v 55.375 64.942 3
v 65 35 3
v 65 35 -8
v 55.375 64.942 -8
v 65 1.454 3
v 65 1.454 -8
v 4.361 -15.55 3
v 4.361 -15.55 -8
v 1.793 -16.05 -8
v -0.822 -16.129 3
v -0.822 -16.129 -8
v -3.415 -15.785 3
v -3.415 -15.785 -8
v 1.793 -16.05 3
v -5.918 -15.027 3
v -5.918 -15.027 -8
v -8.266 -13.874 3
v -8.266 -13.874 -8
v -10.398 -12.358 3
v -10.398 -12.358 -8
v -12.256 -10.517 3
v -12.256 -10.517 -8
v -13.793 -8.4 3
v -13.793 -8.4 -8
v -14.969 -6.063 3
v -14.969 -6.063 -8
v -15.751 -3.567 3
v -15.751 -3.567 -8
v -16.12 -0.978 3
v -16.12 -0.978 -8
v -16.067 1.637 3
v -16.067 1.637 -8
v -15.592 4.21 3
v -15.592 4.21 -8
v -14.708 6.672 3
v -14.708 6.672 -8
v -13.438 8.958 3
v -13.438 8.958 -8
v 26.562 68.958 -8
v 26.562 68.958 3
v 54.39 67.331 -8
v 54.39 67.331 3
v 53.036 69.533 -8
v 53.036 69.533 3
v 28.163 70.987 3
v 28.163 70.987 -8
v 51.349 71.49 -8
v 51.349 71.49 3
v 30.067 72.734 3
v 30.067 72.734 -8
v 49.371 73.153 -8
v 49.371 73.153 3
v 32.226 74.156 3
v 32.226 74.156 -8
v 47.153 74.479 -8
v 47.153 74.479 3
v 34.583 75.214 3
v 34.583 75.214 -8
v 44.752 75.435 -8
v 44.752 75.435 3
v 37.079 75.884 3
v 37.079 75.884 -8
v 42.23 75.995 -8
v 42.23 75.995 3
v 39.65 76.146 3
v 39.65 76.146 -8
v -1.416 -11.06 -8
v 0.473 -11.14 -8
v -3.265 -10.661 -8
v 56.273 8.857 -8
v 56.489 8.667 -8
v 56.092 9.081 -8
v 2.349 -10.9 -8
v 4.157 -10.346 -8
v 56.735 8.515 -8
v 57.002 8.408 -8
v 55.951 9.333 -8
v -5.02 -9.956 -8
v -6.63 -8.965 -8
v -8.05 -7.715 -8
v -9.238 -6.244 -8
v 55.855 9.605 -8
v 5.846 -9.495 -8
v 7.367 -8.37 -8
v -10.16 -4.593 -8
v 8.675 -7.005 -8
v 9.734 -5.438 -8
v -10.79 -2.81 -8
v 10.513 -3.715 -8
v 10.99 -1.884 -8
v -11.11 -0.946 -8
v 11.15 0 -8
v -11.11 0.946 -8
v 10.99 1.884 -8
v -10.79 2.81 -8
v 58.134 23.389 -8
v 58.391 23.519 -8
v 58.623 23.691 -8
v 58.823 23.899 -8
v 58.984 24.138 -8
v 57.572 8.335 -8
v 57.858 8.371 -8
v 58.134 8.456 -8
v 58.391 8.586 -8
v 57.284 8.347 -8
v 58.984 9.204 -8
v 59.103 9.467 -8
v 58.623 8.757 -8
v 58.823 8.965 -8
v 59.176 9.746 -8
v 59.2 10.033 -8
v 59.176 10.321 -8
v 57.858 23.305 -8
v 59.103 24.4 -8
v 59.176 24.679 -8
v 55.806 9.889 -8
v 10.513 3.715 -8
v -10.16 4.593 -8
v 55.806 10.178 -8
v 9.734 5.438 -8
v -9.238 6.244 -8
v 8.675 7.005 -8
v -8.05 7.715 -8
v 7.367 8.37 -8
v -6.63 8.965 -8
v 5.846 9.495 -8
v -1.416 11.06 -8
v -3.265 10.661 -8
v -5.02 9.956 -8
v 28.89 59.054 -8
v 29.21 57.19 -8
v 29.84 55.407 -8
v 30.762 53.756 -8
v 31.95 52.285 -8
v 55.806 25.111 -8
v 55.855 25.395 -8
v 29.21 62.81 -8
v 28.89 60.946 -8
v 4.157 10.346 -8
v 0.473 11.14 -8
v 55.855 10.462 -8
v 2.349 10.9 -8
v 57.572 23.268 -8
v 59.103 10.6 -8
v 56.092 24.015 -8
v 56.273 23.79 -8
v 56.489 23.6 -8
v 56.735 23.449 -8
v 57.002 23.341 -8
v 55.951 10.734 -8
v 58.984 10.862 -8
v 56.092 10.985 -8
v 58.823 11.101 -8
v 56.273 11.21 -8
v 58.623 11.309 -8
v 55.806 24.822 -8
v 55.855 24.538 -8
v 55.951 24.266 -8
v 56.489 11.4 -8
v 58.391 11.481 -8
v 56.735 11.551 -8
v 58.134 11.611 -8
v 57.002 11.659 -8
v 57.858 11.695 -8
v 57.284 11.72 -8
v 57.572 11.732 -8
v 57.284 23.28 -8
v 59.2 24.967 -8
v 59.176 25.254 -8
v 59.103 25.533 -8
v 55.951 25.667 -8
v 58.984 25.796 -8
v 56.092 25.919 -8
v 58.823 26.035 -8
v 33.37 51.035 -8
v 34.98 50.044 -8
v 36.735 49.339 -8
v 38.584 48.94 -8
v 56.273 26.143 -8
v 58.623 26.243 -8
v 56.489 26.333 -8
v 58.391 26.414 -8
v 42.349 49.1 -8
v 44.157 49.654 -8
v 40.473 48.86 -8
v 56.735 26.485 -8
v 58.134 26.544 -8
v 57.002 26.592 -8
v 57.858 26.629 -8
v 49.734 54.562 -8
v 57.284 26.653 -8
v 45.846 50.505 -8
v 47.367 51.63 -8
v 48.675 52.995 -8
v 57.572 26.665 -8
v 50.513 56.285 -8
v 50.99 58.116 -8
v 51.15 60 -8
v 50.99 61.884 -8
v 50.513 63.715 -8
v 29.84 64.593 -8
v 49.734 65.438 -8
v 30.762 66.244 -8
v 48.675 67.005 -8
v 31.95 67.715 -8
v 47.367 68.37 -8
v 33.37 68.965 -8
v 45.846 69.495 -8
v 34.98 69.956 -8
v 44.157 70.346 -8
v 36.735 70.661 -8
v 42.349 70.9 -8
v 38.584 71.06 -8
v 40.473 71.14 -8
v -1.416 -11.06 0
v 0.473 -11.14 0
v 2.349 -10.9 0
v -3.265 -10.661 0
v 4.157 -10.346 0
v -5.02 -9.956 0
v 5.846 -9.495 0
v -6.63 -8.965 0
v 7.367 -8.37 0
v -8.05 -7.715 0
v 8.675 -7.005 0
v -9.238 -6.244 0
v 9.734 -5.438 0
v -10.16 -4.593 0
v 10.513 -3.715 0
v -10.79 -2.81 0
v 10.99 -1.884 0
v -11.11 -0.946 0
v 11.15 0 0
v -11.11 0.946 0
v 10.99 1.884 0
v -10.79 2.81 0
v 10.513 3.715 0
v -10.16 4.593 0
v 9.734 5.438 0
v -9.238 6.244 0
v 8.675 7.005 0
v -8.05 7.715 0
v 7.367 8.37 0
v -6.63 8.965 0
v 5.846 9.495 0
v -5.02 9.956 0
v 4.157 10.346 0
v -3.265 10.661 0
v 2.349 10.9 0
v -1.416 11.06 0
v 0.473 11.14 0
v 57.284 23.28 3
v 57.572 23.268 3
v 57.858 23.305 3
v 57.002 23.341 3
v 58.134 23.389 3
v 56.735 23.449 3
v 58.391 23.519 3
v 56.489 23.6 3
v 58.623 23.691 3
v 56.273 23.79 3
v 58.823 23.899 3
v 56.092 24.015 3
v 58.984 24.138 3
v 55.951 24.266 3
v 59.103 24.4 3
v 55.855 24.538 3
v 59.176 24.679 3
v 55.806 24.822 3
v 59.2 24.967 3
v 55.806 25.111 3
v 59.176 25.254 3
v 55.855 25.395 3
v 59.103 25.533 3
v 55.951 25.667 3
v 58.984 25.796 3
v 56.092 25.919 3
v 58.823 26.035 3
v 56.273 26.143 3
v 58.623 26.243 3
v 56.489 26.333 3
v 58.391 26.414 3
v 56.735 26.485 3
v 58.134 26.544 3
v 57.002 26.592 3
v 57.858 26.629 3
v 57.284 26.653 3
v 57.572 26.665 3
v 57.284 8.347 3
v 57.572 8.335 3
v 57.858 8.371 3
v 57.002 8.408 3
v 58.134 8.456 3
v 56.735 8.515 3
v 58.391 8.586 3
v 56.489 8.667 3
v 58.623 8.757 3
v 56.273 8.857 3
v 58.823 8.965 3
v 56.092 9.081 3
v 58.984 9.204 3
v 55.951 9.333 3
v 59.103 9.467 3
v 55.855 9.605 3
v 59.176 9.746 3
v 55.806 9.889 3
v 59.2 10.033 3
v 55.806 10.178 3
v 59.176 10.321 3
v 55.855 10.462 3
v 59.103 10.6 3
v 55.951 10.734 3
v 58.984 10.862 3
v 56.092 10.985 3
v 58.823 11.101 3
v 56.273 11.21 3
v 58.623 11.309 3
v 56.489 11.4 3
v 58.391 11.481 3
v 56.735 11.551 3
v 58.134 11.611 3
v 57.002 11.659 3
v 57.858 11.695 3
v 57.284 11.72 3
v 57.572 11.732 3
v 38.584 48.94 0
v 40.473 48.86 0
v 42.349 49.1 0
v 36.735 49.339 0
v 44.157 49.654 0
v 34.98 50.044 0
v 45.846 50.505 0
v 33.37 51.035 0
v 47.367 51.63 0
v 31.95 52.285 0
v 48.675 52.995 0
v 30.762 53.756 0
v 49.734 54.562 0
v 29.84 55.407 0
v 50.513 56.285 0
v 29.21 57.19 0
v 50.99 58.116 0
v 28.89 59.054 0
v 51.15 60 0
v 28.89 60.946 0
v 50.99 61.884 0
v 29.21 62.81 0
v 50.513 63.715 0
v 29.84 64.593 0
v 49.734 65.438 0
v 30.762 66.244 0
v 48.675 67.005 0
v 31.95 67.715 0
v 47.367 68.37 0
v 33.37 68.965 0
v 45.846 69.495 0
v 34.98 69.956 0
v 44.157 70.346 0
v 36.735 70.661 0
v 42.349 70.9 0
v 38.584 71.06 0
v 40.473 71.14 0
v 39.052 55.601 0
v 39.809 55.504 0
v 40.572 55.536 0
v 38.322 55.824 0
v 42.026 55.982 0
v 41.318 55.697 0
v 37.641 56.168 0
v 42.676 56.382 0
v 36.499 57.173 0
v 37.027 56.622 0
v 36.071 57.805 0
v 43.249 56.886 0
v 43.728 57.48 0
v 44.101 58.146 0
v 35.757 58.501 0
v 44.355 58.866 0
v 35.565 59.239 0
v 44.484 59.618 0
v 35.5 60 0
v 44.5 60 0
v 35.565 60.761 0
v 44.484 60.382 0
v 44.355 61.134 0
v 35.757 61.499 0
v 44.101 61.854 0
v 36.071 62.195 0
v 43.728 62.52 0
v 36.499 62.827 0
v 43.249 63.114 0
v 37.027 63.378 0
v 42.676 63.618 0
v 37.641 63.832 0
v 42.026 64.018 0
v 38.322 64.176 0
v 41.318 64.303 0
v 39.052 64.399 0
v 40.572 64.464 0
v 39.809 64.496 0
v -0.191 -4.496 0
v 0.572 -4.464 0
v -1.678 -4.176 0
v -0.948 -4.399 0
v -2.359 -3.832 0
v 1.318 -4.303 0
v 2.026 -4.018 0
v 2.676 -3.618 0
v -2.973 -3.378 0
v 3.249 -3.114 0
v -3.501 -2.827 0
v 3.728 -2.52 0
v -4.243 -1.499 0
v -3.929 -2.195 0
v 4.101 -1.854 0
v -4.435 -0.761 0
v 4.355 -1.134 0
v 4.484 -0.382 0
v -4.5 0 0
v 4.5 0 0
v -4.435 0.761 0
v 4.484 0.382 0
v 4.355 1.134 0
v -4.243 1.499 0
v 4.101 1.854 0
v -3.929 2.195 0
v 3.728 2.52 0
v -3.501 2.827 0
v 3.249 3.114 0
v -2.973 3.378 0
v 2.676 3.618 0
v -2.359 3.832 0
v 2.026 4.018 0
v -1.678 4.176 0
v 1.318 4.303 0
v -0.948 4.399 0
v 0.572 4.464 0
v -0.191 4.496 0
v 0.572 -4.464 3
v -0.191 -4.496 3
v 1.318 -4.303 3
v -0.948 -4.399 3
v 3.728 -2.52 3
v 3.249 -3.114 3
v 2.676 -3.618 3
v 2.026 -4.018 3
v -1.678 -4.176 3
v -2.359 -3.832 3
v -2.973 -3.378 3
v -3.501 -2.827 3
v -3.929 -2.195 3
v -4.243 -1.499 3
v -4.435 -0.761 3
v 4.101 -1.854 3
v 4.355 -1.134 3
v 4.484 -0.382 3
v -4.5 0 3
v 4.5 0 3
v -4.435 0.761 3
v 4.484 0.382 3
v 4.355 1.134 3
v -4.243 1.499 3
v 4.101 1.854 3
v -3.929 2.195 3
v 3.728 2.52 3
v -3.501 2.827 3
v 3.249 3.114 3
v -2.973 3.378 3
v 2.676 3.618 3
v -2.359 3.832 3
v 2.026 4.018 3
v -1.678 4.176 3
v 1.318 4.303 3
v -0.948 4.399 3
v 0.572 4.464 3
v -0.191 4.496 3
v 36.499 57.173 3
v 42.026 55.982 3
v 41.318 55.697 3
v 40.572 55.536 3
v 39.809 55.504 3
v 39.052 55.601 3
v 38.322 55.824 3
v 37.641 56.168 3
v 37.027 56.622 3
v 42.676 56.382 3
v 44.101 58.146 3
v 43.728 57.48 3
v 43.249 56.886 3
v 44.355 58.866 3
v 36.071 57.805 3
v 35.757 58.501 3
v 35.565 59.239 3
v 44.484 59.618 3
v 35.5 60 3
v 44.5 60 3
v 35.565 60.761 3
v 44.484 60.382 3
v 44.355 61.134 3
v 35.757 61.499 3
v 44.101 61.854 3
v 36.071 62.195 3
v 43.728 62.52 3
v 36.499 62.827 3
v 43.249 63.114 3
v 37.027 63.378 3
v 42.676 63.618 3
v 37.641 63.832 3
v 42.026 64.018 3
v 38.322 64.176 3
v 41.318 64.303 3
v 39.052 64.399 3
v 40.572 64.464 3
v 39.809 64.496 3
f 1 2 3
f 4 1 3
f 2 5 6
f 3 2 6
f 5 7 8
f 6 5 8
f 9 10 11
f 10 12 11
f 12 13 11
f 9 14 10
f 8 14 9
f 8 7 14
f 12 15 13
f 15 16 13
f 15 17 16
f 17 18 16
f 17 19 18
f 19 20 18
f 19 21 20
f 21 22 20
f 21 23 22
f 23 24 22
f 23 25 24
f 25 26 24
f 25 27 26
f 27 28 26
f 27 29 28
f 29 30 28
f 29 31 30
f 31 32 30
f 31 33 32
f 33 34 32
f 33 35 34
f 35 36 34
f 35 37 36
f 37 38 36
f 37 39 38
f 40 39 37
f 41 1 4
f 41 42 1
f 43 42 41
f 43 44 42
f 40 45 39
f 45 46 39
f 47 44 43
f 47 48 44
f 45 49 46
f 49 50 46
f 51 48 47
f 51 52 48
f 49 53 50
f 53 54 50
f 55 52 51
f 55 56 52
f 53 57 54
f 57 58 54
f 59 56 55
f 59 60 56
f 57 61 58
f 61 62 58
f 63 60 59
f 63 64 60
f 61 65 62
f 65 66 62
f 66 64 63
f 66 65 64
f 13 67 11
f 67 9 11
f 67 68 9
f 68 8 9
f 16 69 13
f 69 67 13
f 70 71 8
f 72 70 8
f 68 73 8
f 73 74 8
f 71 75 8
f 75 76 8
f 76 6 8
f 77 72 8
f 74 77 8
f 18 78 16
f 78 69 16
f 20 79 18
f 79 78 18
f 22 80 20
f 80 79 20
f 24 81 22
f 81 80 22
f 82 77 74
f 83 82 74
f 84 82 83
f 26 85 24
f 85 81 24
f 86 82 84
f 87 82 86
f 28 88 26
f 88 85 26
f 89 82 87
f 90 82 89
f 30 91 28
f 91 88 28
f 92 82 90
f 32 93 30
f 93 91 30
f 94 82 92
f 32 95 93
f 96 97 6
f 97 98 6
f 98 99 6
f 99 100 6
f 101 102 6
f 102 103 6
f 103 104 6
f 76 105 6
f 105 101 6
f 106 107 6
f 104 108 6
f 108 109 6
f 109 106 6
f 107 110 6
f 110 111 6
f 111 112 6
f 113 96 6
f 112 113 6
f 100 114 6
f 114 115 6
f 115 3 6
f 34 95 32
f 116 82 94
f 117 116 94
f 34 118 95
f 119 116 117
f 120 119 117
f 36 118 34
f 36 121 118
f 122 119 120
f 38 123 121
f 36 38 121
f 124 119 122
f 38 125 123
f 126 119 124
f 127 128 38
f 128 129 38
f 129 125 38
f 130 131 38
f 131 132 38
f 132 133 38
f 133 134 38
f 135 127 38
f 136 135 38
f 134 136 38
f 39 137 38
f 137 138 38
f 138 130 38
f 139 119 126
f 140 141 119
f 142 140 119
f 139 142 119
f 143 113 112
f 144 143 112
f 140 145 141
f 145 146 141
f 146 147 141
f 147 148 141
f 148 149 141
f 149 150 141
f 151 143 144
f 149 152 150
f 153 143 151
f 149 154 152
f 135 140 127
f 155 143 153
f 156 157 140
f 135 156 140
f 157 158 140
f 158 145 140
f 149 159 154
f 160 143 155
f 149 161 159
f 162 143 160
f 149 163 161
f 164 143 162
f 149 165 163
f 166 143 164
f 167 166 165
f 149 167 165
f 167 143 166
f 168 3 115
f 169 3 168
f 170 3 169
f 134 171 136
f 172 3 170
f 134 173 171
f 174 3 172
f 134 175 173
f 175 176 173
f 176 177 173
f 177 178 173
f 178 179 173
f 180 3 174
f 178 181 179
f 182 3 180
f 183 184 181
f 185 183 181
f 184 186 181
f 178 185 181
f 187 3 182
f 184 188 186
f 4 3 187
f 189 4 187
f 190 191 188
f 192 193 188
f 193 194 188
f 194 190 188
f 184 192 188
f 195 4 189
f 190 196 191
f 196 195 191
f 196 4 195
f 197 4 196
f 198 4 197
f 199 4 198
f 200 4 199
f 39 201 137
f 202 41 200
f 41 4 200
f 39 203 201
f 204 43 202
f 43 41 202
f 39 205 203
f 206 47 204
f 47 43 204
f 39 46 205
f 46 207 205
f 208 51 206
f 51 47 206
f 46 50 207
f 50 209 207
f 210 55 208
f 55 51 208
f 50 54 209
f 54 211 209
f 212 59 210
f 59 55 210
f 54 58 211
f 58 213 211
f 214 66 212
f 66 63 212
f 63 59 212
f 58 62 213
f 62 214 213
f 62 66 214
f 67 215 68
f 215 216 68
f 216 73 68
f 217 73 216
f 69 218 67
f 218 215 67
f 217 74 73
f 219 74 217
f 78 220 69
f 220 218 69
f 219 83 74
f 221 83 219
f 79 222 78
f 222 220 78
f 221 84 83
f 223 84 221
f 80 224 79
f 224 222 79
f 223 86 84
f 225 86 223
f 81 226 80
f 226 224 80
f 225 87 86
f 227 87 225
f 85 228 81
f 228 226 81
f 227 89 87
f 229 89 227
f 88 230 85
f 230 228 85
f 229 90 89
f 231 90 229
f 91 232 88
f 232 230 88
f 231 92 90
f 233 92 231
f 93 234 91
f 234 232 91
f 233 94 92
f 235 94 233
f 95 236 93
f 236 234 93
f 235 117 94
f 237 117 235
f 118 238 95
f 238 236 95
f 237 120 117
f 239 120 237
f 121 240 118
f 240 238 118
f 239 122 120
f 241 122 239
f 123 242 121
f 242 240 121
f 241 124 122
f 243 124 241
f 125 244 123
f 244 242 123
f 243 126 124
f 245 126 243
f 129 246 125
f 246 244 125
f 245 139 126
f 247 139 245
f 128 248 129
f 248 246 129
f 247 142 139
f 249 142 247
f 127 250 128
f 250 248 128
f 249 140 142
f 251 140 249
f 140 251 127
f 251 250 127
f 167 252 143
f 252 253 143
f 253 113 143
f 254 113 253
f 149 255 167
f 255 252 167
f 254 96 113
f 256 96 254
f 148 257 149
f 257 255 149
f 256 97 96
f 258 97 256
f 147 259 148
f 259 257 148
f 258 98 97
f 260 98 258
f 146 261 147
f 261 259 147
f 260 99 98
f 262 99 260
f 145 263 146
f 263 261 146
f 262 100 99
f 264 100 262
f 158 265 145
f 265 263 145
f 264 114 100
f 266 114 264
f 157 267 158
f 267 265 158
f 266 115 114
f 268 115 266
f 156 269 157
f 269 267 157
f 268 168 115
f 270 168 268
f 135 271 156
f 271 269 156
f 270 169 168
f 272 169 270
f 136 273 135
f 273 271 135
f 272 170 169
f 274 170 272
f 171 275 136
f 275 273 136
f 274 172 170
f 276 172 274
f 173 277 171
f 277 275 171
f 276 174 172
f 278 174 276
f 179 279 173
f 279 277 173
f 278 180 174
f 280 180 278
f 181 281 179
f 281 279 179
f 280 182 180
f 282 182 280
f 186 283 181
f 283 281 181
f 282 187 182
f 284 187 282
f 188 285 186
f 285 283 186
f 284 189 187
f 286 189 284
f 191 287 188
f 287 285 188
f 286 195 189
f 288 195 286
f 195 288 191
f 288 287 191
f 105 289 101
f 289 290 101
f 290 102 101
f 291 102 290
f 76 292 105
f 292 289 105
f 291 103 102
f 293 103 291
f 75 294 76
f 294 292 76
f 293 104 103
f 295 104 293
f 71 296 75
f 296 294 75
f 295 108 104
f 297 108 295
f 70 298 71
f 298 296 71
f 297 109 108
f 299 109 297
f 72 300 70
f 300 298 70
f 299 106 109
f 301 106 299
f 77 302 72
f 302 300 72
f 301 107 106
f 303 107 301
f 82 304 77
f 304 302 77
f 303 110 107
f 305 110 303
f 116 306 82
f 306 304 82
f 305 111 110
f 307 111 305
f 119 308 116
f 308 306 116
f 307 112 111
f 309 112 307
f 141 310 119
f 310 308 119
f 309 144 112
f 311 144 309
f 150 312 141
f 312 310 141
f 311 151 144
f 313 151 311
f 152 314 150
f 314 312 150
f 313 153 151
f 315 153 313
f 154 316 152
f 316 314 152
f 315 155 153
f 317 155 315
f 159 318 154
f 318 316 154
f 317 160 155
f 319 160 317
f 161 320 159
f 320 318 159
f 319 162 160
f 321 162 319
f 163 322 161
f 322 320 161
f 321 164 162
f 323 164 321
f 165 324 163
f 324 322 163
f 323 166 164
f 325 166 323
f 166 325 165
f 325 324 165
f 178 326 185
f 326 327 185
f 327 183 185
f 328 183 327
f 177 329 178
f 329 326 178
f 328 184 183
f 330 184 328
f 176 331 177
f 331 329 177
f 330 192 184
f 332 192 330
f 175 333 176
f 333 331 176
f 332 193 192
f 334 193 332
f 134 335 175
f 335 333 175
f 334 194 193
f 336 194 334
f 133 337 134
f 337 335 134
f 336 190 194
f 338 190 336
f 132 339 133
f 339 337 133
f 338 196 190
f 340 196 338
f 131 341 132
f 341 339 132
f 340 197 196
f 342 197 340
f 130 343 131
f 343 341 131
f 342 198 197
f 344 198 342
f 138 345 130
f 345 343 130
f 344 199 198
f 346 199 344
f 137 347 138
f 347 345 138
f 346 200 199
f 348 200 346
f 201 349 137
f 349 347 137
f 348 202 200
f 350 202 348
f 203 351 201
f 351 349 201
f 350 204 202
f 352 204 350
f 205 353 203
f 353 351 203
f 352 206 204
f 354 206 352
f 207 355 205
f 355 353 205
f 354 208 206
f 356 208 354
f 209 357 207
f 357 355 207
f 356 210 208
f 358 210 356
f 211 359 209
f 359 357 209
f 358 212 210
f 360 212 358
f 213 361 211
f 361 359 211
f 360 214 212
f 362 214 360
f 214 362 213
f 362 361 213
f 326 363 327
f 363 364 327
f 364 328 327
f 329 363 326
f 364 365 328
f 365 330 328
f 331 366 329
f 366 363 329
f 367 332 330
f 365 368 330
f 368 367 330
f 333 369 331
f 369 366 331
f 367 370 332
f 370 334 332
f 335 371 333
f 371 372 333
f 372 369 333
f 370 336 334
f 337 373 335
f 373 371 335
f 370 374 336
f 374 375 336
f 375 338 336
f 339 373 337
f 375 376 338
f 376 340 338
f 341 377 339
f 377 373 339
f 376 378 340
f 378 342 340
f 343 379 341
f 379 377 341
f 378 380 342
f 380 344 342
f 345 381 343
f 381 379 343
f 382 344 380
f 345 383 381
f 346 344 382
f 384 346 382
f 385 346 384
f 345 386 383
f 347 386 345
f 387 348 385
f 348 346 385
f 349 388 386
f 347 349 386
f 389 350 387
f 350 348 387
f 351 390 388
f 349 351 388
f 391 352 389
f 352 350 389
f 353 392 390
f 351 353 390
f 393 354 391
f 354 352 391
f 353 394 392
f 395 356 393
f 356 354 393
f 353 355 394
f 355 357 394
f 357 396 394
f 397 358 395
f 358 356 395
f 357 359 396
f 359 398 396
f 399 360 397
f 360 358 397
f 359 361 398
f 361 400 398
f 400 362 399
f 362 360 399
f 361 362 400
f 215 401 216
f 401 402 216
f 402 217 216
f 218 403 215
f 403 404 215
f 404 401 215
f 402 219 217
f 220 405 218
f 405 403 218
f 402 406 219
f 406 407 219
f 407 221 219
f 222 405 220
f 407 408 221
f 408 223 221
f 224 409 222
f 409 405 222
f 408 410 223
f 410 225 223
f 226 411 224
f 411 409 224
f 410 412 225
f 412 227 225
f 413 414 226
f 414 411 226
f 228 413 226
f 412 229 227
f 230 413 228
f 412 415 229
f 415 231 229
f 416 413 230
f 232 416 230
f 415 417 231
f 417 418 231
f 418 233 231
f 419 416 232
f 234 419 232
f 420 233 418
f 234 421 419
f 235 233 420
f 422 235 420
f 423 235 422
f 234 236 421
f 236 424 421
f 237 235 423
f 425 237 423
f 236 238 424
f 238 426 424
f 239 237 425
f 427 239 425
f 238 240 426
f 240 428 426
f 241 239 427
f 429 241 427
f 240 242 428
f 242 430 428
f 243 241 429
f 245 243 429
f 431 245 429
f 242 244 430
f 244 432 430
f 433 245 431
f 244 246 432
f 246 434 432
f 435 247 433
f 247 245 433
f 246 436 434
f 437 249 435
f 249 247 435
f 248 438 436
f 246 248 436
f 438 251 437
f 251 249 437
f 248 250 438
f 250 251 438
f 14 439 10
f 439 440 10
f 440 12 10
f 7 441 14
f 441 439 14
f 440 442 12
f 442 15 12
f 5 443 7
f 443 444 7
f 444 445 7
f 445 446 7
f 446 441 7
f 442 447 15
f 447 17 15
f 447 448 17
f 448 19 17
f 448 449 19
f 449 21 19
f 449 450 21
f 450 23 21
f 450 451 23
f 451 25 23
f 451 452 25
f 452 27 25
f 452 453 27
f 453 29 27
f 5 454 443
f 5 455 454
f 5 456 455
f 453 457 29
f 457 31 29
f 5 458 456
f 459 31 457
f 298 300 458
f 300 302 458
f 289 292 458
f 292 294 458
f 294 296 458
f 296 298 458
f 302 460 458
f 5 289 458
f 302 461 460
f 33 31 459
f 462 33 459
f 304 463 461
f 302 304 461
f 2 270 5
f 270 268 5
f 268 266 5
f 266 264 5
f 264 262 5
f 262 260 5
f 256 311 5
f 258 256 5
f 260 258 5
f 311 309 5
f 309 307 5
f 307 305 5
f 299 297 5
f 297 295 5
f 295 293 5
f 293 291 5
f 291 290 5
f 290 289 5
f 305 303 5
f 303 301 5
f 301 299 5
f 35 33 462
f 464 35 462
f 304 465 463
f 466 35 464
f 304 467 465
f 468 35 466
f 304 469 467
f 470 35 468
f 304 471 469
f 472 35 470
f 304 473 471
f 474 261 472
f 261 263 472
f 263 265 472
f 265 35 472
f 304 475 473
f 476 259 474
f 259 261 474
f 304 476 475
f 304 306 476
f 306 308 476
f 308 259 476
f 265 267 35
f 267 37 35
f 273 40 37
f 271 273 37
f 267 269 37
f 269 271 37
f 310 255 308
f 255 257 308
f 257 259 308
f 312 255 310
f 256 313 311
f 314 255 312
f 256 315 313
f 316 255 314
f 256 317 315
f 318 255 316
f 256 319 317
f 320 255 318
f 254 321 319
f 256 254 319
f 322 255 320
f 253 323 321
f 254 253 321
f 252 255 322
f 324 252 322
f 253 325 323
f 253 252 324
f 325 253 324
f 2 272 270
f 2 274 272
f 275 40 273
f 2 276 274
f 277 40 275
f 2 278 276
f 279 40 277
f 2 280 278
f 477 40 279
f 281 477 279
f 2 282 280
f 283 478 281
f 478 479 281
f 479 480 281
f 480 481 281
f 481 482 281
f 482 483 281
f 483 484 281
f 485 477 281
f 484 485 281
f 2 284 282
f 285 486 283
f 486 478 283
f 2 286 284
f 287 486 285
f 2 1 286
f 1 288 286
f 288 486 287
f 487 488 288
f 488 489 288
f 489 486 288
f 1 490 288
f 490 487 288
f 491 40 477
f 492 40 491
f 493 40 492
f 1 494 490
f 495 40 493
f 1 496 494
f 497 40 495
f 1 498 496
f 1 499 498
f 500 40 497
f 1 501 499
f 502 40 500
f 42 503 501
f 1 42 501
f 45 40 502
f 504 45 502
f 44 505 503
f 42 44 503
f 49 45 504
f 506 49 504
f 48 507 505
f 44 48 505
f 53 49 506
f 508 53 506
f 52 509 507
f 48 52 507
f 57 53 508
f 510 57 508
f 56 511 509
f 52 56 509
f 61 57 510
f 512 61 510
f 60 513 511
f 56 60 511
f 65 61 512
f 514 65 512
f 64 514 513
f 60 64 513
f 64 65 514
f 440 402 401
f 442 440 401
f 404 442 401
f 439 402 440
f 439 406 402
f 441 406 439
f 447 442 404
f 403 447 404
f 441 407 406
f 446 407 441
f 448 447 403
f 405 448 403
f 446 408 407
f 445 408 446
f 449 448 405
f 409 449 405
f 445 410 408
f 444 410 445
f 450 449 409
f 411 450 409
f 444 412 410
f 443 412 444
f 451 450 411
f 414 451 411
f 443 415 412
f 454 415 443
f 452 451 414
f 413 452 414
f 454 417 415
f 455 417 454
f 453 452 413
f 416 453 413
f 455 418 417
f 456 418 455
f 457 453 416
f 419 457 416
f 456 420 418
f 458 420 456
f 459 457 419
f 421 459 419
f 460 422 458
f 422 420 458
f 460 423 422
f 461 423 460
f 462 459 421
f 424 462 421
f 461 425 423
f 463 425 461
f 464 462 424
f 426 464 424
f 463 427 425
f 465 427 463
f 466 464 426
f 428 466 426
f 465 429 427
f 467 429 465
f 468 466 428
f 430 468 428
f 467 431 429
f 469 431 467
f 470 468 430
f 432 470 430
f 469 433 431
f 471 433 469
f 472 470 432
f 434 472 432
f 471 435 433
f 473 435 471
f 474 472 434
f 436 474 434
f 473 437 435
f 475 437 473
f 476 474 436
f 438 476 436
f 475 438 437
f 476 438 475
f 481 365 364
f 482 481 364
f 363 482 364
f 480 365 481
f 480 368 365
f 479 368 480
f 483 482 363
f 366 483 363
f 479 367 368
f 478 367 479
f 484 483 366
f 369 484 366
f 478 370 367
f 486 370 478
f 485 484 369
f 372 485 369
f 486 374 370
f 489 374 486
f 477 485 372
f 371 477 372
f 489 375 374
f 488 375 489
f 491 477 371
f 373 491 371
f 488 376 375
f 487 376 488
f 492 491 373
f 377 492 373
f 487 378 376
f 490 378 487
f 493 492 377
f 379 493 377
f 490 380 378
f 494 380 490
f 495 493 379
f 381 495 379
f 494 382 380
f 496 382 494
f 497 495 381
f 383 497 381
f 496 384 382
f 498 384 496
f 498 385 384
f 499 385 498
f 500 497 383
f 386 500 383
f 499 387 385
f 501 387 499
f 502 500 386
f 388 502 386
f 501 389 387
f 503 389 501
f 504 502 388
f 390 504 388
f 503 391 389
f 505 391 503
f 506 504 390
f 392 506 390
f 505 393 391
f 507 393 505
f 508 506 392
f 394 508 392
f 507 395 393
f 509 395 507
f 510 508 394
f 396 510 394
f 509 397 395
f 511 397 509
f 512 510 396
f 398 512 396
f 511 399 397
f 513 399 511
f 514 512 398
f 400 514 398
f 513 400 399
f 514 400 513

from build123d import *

# Parameters (mm, degrees)
SKETCH1_R           = 11.15
SKETCH1_R_2         = 1.7
BOSS_EXTRUDE1_DEPTH = 8
BOSS_EXTRUDE2_START = 3
SKETCH2_R           = 4.5
SKETCH2_R_2         = 1.7
BOSS_EXTRUDE2_DEPTH = 3


with BuildPart() as part:
    # Sketch1 → Boss-Extrude1 (new body)
    with BuildSketch(Plane.XY):
        with BuildLine():
            Line((65, 1.454102171), (65, 35))
            Line((65, 35), (55.375185128, 64.942285128))
            ThreePointArc((55.375185128, 64.942285128), (42.229542157, 75.995363133), (26.562387746, 68.958408169))
            Line((26.562387746, 68.958408169), (-13.437612254, 8.958408169))
            ThreePointArc((-13.437612254, 8.958408169), (-13.067754119, -9.489799908), (4.360524021, -15.550187467))
            Line((4.360524021, -15.550187467), (65, 1.454102171))
        make_face()
        Circle(SKETCH1_R, mode=Mode.SUBTRACT)
        with Locations((57.5, 24.966666667)):
            Circle(SKETCH1_R_2, mode=Mode.SUBTRACT)
        with Locations((57.5, 10.033333333)):
            Circle(SKETCH1_R_2, mode=Mode.SUBTRACT)
        with Locations((40, 60)):
            Circle(SKETCH1_R, mode=Mode.SUBTRACT)
    extrude(amount=-BOSS_EXTRUDE1_DEPTH)

    # Sketch2 → Boss-Extrude2 (add)
    with BuildSketch(Plane.XY.offset(BOSS_EXTRUDE2_START)):
        with BuildLine():
            Line((4.360524021, -15.550187467), (65, 1.454102171))
            Line((65, 1.454102171), (65, 35))
            Line((65, 35), (55.375185128, 64.942285128))
            ThreePointArc((55.375185128, 64.942285128), (42.229542157, 75.995363133), (26.562387746, 68.958408169))
            Line((26.562387746, 68.958408169), (-13.437612254, 8.958408169))
            ThreePointArc((-13.437612254, 8.958408169), (-13.067754119, -9.489799908), (4.360524021, -15.550187467))
        make_face()
        Circle(SKETCH2_R, mode=Mode.SUBTRACT)
        with Locations((57.5, 24.966666667)):
            Circle(SKETCH2_R_2, mode=Mode.SUBTRACT)
        with Locations((57.5, 10.033333333)):
            Circle(SKETCH2_R_2, mode=Mode.SUBTRACT)
        with Locations((40, 60)):
            Circle(SKETCH2_R, mode=Mode.SUBTRACT)
    extrude(amount=-BOSS_EXTRUDE2_DEPTH)


solid = part.part
